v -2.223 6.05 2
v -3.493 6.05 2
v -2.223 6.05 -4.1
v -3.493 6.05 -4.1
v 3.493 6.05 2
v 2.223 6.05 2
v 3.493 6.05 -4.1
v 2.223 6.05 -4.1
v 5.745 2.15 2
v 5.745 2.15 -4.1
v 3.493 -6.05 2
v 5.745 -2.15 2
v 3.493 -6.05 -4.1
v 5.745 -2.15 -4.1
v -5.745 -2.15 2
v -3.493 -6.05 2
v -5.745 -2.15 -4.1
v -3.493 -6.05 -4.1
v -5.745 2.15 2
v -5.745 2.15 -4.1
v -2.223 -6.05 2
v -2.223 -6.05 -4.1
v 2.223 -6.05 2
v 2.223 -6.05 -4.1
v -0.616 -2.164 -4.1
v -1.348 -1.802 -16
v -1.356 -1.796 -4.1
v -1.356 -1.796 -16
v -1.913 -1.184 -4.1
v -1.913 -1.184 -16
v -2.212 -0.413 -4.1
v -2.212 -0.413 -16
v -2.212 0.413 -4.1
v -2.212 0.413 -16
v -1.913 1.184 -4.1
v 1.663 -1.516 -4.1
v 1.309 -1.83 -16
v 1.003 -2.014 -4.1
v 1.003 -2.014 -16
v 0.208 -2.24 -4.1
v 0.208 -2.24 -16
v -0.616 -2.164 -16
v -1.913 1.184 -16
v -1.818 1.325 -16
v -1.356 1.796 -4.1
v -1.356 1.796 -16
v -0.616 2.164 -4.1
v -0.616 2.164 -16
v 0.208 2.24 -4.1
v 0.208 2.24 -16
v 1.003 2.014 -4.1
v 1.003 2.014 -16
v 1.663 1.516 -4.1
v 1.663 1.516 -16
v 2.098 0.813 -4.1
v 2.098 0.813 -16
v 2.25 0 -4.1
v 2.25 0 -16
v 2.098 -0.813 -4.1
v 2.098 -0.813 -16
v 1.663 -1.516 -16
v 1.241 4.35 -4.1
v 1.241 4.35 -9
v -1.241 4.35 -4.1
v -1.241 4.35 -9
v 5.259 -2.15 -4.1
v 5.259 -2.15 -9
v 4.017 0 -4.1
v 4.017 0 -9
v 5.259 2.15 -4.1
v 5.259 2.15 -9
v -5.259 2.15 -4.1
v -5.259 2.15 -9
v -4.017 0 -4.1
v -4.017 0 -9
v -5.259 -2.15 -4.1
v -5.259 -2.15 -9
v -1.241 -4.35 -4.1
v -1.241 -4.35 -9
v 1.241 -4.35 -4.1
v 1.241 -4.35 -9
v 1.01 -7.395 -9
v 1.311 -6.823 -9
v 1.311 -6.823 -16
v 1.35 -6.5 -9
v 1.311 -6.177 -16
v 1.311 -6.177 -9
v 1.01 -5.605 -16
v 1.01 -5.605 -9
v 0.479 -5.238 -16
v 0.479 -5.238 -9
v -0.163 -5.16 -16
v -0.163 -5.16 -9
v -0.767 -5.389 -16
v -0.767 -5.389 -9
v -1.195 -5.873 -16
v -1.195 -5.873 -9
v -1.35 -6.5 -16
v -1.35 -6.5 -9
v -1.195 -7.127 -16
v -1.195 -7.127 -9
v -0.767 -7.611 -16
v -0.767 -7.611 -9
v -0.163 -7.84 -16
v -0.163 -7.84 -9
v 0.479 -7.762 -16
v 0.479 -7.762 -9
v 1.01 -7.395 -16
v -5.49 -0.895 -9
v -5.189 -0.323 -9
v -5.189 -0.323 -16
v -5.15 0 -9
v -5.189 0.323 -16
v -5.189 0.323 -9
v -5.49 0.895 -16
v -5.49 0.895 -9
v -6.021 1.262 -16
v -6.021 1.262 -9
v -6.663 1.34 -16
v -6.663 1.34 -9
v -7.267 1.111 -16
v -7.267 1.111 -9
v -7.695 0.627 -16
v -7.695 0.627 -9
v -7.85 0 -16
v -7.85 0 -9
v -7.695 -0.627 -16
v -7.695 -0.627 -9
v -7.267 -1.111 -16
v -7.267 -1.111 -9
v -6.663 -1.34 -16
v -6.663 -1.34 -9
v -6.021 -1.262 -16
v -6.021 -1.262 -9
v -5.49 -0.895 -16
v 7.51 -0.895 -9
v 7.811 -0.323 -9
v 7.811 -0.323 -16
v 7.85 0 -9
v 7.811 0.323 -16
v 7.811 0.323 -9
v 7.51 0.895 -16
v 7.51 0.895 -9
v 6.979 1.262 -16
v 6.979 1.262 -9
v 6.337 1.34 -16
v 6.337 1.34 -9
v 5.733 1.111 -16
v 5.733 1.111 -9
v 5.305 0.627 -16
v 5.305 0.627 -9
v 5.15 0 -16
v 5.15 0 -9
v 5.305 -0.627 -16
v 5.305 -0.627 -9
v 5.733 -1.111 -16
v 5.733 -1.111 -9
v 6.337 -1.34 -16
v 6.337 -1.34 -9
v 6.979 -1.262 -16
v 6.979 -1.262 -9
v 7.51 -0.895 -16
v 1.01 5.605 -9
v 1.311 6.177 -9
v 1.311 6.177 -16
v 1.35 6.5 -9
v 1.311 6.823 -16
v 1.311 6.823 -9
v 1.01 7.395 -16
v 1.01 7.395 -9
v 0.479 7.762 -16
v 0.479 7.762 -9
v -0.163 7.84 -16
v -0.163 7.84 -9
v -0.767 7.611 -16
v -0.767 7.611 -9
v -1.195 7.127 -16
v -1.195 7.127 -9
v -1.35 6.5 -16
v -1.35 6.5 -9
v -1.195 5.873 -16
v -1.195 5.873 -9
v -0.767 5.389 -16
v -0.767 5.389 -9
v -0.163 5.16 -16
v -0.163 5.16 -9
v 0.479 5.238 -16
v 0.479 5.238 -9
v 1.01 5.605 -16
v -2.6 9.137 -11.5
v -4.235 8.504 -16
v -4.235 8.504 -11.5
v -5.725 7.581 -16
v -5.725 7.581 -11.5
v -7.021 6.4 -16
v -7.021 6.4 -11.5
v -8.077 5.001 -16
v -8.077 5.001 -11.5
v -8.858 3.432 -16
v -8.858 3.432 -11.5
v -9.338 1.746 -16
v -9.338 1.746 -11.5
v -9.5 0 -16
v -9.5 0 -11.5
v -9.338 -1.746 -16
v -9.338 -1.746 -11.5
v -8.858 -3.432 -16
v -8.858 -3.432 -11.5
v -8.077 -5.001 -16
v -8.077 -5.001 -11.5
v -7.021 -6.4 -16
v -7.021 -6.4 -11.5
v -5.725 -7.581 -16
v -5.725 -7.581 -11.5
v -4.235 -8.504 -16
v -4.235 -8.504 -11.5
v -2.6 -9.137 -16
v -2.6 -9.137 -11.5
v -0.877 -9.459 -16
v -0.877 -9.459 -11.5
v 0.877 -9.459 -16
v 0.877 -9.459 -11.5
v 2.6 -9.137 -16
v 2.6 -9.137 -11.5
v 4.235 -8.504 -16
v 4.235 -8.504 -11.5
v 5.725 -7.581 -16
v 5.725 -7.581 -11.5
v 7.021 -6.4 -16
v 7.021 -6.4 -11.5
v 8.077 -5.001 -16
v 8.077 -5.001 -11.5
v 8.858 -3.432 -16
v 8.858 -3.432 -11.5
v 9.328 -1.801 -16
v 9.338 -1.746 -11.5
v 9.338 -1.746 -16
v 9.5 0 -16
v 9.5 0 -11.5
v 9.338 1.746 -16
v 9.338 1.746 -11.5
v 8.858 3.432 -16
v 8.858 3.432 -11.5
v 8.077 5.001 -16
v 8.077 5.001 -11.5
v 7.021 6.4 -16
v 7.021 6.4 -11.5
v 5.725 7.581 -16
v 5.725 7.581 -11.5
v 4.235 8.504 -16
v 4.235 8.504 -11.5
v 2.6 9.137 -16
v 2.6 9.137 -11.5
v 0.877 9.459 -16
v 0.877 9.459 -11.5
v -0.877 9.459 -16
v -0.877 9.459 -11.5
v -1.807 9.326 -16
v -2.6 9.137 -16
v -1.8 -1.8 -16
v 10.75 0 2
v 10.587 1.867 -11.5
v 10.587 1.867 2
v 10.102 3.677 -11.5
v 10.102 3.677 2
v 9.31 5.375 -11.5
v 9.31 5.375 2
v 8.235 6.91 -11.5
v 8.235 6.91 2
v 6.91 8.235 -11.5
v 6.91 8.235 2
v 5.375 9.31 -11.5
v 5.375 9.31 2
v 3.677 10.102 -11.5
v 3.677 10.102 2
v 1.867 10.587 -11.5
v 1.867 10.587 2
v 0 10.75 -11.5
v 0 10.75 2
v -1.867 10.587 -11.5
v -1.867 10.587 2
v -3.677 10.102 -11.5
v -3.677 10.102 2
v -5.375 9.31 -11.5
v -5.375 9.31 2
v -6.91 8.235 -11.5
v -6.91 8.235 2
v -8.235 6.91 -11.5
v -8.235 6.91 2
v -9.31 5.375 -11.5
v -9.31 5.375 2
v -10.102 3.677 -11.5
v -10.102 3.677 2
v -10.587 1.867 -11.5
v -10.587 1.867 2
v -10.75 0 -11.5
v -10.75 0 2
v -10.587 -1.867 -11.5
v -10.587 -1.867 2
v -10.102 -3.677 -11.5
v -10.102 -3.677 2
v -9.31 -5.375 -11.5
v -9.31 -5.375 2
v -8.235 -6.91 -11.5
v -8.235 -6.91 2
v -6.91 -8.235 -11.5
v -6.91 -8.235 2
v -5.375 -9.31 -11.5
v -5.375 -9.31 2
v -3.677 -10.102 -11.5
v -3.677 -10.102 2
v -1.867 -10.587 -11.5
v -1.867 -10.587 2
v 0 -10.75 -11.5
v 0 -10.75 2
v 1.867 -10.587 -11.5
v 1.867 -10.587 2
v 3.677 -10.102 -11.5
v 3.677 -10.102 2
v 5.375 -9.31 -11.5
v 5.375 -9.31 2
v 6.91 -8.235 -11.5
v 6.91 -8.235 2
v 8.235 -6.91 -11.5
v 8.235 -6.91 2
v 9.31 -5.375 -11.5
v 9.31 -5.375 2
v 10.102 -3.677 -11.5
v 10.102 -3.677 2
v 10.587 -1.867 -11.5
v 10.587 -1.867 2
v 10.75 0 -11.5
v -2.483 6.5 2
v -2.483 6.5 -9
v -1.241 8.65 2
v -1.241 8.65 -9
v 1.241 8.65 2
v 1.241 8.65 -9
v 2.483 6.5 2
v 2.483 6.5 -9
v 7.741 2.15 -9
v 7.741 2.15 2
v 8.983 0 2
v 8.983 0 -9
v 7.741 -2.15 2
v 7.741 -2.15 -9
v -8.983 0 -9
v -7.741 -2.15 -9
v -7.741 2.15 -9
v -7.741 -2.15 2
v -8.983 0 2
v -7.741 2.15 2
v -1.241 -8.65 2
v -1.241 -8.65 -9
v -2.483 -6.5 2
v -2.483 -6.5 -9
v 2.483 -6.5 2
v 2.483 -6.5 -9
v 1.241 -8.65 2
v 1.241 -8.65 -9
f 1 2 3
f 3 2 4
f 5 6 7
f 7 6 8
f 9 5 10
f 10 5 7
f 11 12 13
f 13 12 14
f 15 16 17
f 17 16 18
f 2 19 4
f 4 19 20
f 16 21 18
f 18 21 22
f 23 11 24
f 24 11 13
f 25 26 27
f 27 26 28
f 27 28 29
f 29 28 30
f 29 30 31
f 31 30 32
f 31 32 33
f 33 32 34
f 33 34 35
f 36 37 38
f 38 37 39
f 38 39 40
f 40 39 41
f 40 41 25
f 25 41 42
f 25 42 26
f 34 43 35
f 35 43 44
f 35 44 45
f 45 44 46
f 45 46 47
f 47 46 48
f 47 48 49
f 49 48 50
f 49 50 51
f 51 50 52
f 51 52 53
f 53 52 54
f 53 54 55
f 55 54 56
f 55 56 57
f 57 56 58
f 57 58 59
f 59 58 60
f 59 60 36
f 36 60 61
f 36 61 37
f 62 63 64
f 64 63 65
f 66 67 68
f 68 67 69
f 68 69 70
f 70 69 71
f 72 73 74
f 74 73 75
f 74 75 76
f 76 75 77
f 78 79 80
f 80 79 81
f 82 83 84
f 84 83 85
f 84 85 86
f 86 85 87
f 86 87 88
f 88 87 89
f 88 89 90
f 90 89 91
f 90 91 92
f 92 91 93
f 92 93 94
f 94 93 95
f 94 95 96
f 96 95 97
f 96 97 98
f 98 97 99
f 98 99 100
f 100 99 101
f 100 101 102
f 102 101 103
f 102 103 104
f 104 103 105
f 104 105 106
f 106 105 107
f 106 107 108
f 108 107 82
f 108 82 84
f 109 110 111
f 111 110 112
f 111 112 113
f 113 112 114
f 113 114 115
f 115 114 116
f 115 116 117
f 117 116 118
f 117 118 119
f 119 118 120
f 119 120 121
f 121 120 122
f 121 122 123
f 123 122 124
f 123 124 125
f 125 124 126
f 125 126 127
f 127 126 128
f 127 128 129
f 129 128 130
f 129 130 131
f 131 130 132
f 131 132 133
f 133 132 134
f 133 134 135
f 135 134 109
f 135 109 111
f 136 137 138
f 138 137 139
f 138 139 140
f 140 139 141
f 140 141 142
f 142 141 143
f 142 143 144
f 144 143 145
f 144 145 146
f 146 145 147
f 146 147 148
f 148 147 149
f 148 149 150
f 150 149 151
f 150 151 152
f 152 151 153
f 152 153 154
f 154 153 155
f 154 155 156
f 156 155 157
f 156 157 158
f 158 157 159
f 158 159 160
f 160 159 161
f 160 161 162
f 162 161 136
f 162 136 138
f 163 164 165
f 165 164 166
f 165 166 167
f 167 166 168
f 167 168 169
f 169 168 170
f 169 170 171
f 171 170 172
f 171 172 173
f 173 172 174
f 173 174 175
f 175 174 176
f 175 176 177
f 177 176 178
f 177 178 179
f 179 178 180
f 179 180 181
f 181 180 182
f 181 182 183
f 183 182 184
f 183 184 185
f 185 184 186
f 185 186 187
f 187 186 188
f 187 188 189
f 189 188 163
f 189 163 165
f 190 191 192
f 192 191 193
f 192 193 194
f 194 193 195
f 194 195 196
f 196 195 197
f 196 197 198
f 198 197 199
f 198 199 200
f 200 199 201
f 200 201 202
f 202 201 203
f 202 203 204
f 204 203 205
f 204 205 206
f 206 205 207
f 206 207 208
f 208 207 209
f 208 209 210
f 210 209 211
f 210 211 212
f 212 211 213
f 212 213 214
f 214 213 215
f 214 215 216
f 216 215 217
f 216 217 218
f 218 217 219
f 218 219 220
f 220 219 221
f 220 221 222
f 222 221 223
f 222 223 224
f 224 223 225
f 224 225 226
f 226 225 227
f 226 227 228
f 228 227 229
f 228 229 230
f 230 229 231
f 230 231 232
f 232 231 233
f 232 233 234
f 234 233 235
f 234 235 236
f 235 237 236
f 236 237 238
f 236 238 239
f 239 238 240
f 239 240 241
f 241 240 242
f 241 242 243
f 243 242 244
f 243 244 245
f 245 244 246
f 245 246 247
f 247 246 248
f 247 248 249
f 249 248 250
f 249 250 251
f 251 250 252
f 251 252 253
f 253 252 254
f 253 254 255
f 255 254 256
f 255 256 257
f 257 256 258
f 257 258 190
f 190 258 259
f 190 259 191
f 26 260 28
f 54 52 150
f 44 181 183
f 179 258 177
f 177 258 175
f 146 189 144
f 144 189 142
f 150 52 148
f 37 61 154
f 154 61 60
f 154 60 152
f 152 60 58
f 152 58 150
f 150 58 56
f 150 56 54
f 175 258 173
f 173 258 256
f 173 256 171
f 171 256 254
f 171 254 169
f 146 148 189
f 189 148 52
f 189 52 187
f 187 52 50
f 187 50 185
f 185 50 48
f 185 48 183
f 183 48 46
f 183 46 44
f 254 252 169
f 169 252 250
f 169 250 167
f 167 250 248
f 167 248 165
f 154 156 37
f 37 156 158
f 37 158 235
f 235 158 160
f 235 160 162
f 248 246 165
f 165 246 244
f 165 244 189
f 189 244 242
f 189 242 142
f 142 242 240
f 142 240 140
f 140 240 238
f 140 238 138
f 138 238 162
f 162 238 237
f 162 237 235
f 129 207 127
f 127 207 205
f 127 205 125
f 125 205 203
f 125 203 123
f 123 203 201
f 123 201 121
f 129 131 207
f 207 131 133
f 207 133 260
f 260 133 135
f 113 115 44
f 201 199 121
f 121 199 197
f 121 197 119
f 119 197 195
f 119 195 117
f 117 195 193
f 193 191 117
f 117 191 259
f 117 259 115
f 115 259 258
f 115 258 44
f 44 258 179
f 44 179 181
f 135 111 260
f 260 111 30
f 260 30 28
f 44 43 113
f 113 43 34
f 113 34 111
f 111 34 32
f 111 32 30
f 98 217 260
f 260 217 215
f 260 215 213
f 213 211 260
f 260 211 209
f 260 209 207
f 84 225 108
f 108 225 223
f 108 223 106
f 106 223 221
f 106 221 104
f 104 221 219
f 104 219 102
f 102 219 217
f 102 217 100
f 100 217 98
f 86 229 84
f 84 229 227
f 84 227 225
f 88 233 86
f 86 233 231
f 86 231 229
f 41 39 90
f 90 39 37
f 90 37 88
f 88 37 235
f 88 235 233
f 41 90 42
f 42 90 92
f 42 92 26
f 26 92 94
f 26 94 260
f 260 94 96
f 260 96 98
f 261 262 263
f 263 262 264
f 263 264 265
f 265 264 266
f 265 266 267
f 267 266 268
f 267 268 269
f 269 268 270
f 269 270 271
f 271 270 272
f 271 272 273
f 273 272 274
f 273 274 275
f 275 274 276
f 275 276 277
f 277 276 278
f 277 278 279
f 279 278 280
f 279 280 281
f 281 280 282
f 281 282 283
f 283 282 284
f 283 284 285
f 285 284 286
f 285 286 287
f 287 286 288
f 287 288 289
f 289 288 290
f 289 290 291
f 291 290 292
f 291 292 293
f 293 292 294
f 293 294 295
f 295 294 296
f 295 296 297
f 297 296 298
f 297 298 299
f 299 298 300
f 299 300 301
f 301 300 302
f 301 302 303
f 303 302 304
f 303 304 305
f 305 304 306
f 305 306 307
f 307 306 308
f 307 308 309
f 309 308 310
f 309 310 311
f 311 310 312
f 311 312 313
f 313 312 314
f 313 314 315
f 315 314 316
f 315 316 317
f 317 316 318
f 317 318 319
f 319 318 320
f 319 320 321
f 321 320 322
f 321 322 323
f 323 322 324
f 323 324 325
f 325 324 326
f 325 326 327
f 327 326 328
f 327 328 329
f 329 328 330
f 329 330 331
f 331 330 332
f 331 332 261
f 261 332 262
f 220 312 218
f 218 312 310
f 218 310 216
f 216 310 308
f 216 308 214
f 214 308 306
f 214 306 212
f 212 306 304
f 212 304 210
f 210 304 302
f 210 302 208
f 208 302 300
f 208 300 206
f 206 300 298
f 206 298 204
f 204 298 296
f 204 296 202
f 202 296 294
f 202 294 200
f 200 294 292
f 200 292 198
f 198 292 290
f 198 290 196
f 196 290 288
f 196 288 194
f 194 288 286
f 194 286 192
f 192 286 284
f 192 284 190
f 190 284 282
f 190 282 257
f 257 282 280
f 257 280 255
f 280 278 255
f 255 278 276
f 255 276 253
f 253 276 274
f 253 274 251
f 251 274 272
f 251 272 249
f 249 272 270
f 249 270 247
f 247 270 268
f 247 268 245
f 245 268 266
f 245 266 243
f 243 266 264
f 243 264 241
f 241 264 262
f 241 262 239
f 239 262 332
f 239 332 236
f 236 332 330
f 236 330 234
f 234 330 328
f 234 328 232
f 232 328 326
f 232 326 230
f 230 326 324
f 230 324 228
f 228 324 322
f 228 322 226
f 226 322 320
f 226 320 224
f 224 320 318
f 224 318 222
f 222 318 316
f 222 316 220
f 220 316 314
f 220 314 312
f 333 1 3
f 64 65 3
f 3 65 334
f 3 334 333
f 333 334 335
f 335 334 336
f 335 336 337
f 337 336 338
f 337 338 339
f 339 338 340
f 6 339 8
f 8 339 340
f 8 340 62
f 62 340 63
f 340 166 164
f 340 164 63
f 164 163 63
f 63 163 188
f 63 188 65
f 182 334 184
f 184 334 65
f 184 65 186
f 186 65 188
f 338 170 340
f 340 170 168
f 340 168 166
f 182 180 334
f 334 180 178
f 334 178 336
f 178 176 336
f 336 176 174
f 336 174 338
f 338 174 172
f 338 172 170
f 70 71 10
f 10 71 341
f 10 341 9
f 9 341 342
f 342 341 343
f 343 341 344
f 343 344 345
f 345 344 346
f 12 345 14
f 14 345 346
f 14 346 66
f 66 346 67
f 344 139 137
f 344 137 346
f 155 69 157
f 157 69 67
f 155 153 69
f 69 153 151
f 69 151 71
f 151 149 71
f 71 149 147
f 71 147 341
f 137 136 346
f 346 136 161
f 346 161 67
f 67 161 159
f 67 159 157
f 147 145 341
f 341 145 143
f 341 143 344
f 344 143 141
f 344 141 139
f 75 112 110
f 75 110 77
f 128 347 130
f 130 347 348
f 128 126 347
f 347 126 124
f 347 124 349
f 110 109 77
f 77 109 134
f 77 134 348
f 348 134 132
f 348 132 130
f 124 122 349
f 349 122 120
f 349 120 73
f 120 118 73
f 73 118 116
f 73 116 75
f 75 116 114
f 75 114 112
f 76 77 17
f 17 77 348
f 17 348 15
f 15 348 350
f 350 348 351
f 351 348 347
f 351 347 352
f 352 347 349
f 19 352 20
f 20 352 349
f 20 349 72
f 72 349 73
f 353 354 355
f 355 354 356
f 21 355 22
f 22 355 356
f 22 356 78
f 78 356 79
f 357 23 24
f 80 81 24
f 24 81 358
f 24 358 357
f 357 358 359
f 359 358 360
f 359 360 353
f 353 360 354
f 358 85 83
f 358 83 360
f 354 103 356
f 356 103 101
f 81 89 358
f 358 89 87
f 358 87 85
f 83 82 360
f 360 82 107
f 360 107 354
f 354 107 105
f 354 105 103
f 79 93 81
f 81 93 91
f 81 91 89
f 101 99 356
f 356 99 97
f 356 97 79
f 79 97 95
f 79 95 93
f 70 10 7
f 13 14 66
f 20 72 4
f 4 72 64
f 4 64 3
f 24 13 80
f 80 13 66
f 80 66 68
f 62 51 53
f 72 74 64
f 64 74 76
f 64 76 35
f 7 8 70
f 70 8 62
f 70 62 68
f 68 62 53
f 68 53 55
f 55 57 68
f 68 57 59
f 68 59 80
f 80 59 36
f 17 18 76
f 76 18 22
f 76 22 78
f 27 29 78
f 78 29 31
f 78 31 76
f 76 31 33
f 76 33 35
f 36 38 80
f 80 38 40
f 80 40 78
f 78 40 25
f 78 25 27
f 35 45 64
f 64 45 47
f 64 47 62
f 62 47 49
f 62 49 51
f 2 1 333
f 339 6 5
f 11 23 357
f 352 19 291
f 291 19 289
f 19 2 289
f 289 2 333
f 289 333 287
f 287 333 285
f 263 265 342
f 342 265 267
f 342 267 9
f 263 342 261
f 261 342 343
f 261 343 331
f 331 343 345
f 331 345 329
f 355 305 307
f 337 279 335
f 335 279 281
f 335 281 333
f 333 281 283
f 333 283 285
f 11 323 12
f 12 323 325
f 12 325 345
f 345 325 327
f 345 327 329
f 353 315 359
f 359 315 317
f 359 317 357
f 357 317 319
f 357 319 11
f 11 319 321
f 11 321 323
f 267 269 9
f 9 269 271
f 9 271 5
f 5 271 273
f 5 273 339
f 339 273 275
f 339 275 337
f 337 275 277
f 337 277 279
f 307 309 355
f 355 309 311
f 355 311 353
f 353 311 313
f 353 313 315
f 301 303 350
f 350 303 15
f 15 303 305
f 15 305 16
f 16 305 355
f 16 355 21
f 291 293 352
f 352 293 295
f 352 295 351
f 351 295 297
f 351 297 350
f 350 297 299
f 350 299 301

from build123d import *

# Parameters (mm, degrees)
SKETCH1_R           = 9.5
BOSS_EXTRUDE1_DEPTH = 16
SKETCH1_3_R         = 10.75
SKETCH1_3_R_2       = 9.5
BOSS_EXTRUDE2_DEPTH = 11.5
SKETCH2_R           = 2.25
CUT_EXTRUDE1_DEPTH  = 23.070908454
SKETCH3_R           = 1.35
CUT_EXTRUDE2_DEPTH  = 23.070908454
CUT_EXTRUDE7_START  = -9
SKETCH5_R           = 1.35
CUT_EXTRUDE7_DEPTH  = 9
CUT_EXTRUDE8_DEPTH  = 6.1
BOSS_EXTRUDE5_START = 2
SKETCH8_R           = 2.25
BOSS_EXTRUDE5_DEPTH = 2
BOSS_EXTRUDE6_START = 2
SKETCH9_R           = 10.75
BOSS_EXTRUDE6_DEPTH = 2


with BuildPart() as part:
    # Sketch1 → Boss-Extrude1 (new body)
    with BuildSketch(Plane.XY):
        Circle(SKETCH1_R)
    extrude(amount=-BOSS_EXTRUDE1_DEPTH)

    # Sketch1<3> → Boss-Extrude2 (add)
    with BuildSketch(Plane.XY):
        Circle(SKETCH1_3_R)
        Circle(SKETCH1_3_R_2, mode=Mode.SUBTRACT)
    extrude(amount=-BOSS_EXTRUDE2_DEPTH)

    # Sketch2 → Cut-Extrude1 (cut, through all)
    with BuildSketch(Plane.XY):
        Circle(SKETCH2_R)
    extrude(amount=-CUT_EXTRUDE1_DEPTH, mode=Mode.SUBTRACT)

    # Sketch3 → Cut-Extrude2 (cut, through all)
    with BuildSketch(Plane(origin=(0, 0, -16), x_dir=(-1, 0, 0), z_dir=(0, 0, -1))):
        with Locations((-6.5, 0)):
            Circle(SKETCH3_R)
        with Locations((0, 6.5)):
            Circle(SKETCH3_R)
        with Locations((6.5, 0)):
            Circle(SKETCH3_R)
        with Locations((0, -6.5)):
            Circle(SKETCH3_R)
    extrude(amount=-CUT_EXTRUDE2_DEPTH, mode=Mode.SUBTRACT)

    # Sketch5 → Cut-Extrude7 (cut)
    # profile 1 of 4: a face of its own
    with BuildSketch(Plane.XY.offset(CUT_EXTRUDE7_START)):
        Polygon((-1.241303079, 4.35), (1.241303079, 4.35), (2.482606158, 6.5), (1.241303079, 8.65), (-1.241303079, 8.65), (-2.482606158, 6.5), align=None)
        with Locations((0, 6.5)):
            Circle(SKETCH5_R, mode=Mode.SUBTRACT)
    # profile 2 of 4: a face of its own
    with BuildSketch(Plane.XY.offset(CUT_EXTRUDE7_START)):
        Polygon((-7.741303079, -2.15), (-5.258696921, -2.15), (-4.017393842, 0), (-5.258696921, 2.15), (-7.741303079, 2.15), (-8.982606158, 0), align=None)
    # profile 3 of 4: a face of its own
    with BuildSketch(Plane.XY.offset(CUT_EXTRUDE7_START)):
        Polygon((-1.241303079, -8.65), (1.241303079, -8.65), (2.482606158, -6.5), (1.241303079, -4.35), (-1.241303079, -4.35), (-2.482606158, -6.5), align=None)
        with Locations((0, -6.5)):
            Circle(SKETCH5_R, mode=Mode.SUBTRACT)
    # profile 4 of 4: a face of its own
    with BuildSketch(Plane.XY.offset(CUT_EXTRUDE7_START)):
        Polygon((5.258696921, -2.15), (7.741303079, -2.15), (8.982606158, 0), (7.741303079, 2.15), (5.258696921, 2.15), (4.017393842, 0), align=None)
        with Locations((6.5, 0)):
            Circle(SKETCH5_R, mode=Mode.SUBTRACT)
    extrude(amount=CUT_EXTRUDE7_DEPTH, mode=Mode.SUBTRACT)

    # Sketch6 → Cut-Extrude8 (cut)
    with BuildSketch(Plane.XY):
        Polygon((3.492969129, -6.05), (6.985938257, 0), (3.492969129, 6.05), (-3.492969129, 6.05), (-6.985938257, 0), (-3.492969129, -6.05), align=None)
    extrude(amount=-CUT_EXTRUDE8_DEPTH, mode=Mode.SUBTRACT)

    # Sketch8 → Boss-Extrude5 (add)
    with BuildSketch(Plane.XY.offset(-6.1).offset(BOSS_EXTRUDE5_START)):
        Polygon((-1.241303079, 4.35), (-2.222798536, 6.05), (-3.492969129, 6.05), (-5.744635178, 2.15), (-5.258696921, 2.15), (-4.017393842, 0), (-5.258696921, -2.15), (-5.744635178, -2.15), (-3.492969129, -6.05), (-2.222798536, -6.05), (-1.241303079, -4.35), (1.241303079, -4.35), (2.222798536, -6.05), (3.492969129, -6.05), (5.744635178, -2.15), (5.258696921, -2.15), (4.017393842, 0), (5.258696921, 2.15), (5.744635178, 2.15), (3.492969129, 6.05), (2.222798536, 6.05), (1.241303079, 4.35), align=None)
        Circle(SKETCH8_R, mode=Mode.SUBTRACT)
    extrude(amount=-BOSS_EXTRUDE5_DEPTH)

    # Sketch9 → Boss-Extrude6 (add)
    with BuildSketch(Plane.XY.offset(BOSS_EXTRUDE6_START)):
        Circle(SKETCH9_R)
        Polygon((-3.492969129, 6.05), (-5.744635178, 2.15), (-7.741303079, 2.15), (-8.982606158, 0), (-7.741303079, -2.15), (-5.744635178, -2.15), (-3.492969129, -6.05), (-2.222798536, -6.05), (-2.482606158, -6.5), (-1.241303079, -8.65), (1.241303079, -8.65), (2.482606158, -6.5), (2.222798536, -6.05), (3.492969129, -6.05), (5.744635178, -2.15), (7.741303079, -2.15), (8.982606158, 0), (7.741303079, 2.15), (5.744635178, 2.15), (3.492969129, 6.05), (2.222798536, 6.05), (2.482606158, 6.5), (1.241303079, 8.65), (-1.241303079, 8.65), (-2.482606158, 6.5), (-2.222798536, 6.05), align=None, mode=Mode.SUBTRACT)
    extrude(amount=-BOSS_EXTRUDE6_DEPTH)


solid = part.part
